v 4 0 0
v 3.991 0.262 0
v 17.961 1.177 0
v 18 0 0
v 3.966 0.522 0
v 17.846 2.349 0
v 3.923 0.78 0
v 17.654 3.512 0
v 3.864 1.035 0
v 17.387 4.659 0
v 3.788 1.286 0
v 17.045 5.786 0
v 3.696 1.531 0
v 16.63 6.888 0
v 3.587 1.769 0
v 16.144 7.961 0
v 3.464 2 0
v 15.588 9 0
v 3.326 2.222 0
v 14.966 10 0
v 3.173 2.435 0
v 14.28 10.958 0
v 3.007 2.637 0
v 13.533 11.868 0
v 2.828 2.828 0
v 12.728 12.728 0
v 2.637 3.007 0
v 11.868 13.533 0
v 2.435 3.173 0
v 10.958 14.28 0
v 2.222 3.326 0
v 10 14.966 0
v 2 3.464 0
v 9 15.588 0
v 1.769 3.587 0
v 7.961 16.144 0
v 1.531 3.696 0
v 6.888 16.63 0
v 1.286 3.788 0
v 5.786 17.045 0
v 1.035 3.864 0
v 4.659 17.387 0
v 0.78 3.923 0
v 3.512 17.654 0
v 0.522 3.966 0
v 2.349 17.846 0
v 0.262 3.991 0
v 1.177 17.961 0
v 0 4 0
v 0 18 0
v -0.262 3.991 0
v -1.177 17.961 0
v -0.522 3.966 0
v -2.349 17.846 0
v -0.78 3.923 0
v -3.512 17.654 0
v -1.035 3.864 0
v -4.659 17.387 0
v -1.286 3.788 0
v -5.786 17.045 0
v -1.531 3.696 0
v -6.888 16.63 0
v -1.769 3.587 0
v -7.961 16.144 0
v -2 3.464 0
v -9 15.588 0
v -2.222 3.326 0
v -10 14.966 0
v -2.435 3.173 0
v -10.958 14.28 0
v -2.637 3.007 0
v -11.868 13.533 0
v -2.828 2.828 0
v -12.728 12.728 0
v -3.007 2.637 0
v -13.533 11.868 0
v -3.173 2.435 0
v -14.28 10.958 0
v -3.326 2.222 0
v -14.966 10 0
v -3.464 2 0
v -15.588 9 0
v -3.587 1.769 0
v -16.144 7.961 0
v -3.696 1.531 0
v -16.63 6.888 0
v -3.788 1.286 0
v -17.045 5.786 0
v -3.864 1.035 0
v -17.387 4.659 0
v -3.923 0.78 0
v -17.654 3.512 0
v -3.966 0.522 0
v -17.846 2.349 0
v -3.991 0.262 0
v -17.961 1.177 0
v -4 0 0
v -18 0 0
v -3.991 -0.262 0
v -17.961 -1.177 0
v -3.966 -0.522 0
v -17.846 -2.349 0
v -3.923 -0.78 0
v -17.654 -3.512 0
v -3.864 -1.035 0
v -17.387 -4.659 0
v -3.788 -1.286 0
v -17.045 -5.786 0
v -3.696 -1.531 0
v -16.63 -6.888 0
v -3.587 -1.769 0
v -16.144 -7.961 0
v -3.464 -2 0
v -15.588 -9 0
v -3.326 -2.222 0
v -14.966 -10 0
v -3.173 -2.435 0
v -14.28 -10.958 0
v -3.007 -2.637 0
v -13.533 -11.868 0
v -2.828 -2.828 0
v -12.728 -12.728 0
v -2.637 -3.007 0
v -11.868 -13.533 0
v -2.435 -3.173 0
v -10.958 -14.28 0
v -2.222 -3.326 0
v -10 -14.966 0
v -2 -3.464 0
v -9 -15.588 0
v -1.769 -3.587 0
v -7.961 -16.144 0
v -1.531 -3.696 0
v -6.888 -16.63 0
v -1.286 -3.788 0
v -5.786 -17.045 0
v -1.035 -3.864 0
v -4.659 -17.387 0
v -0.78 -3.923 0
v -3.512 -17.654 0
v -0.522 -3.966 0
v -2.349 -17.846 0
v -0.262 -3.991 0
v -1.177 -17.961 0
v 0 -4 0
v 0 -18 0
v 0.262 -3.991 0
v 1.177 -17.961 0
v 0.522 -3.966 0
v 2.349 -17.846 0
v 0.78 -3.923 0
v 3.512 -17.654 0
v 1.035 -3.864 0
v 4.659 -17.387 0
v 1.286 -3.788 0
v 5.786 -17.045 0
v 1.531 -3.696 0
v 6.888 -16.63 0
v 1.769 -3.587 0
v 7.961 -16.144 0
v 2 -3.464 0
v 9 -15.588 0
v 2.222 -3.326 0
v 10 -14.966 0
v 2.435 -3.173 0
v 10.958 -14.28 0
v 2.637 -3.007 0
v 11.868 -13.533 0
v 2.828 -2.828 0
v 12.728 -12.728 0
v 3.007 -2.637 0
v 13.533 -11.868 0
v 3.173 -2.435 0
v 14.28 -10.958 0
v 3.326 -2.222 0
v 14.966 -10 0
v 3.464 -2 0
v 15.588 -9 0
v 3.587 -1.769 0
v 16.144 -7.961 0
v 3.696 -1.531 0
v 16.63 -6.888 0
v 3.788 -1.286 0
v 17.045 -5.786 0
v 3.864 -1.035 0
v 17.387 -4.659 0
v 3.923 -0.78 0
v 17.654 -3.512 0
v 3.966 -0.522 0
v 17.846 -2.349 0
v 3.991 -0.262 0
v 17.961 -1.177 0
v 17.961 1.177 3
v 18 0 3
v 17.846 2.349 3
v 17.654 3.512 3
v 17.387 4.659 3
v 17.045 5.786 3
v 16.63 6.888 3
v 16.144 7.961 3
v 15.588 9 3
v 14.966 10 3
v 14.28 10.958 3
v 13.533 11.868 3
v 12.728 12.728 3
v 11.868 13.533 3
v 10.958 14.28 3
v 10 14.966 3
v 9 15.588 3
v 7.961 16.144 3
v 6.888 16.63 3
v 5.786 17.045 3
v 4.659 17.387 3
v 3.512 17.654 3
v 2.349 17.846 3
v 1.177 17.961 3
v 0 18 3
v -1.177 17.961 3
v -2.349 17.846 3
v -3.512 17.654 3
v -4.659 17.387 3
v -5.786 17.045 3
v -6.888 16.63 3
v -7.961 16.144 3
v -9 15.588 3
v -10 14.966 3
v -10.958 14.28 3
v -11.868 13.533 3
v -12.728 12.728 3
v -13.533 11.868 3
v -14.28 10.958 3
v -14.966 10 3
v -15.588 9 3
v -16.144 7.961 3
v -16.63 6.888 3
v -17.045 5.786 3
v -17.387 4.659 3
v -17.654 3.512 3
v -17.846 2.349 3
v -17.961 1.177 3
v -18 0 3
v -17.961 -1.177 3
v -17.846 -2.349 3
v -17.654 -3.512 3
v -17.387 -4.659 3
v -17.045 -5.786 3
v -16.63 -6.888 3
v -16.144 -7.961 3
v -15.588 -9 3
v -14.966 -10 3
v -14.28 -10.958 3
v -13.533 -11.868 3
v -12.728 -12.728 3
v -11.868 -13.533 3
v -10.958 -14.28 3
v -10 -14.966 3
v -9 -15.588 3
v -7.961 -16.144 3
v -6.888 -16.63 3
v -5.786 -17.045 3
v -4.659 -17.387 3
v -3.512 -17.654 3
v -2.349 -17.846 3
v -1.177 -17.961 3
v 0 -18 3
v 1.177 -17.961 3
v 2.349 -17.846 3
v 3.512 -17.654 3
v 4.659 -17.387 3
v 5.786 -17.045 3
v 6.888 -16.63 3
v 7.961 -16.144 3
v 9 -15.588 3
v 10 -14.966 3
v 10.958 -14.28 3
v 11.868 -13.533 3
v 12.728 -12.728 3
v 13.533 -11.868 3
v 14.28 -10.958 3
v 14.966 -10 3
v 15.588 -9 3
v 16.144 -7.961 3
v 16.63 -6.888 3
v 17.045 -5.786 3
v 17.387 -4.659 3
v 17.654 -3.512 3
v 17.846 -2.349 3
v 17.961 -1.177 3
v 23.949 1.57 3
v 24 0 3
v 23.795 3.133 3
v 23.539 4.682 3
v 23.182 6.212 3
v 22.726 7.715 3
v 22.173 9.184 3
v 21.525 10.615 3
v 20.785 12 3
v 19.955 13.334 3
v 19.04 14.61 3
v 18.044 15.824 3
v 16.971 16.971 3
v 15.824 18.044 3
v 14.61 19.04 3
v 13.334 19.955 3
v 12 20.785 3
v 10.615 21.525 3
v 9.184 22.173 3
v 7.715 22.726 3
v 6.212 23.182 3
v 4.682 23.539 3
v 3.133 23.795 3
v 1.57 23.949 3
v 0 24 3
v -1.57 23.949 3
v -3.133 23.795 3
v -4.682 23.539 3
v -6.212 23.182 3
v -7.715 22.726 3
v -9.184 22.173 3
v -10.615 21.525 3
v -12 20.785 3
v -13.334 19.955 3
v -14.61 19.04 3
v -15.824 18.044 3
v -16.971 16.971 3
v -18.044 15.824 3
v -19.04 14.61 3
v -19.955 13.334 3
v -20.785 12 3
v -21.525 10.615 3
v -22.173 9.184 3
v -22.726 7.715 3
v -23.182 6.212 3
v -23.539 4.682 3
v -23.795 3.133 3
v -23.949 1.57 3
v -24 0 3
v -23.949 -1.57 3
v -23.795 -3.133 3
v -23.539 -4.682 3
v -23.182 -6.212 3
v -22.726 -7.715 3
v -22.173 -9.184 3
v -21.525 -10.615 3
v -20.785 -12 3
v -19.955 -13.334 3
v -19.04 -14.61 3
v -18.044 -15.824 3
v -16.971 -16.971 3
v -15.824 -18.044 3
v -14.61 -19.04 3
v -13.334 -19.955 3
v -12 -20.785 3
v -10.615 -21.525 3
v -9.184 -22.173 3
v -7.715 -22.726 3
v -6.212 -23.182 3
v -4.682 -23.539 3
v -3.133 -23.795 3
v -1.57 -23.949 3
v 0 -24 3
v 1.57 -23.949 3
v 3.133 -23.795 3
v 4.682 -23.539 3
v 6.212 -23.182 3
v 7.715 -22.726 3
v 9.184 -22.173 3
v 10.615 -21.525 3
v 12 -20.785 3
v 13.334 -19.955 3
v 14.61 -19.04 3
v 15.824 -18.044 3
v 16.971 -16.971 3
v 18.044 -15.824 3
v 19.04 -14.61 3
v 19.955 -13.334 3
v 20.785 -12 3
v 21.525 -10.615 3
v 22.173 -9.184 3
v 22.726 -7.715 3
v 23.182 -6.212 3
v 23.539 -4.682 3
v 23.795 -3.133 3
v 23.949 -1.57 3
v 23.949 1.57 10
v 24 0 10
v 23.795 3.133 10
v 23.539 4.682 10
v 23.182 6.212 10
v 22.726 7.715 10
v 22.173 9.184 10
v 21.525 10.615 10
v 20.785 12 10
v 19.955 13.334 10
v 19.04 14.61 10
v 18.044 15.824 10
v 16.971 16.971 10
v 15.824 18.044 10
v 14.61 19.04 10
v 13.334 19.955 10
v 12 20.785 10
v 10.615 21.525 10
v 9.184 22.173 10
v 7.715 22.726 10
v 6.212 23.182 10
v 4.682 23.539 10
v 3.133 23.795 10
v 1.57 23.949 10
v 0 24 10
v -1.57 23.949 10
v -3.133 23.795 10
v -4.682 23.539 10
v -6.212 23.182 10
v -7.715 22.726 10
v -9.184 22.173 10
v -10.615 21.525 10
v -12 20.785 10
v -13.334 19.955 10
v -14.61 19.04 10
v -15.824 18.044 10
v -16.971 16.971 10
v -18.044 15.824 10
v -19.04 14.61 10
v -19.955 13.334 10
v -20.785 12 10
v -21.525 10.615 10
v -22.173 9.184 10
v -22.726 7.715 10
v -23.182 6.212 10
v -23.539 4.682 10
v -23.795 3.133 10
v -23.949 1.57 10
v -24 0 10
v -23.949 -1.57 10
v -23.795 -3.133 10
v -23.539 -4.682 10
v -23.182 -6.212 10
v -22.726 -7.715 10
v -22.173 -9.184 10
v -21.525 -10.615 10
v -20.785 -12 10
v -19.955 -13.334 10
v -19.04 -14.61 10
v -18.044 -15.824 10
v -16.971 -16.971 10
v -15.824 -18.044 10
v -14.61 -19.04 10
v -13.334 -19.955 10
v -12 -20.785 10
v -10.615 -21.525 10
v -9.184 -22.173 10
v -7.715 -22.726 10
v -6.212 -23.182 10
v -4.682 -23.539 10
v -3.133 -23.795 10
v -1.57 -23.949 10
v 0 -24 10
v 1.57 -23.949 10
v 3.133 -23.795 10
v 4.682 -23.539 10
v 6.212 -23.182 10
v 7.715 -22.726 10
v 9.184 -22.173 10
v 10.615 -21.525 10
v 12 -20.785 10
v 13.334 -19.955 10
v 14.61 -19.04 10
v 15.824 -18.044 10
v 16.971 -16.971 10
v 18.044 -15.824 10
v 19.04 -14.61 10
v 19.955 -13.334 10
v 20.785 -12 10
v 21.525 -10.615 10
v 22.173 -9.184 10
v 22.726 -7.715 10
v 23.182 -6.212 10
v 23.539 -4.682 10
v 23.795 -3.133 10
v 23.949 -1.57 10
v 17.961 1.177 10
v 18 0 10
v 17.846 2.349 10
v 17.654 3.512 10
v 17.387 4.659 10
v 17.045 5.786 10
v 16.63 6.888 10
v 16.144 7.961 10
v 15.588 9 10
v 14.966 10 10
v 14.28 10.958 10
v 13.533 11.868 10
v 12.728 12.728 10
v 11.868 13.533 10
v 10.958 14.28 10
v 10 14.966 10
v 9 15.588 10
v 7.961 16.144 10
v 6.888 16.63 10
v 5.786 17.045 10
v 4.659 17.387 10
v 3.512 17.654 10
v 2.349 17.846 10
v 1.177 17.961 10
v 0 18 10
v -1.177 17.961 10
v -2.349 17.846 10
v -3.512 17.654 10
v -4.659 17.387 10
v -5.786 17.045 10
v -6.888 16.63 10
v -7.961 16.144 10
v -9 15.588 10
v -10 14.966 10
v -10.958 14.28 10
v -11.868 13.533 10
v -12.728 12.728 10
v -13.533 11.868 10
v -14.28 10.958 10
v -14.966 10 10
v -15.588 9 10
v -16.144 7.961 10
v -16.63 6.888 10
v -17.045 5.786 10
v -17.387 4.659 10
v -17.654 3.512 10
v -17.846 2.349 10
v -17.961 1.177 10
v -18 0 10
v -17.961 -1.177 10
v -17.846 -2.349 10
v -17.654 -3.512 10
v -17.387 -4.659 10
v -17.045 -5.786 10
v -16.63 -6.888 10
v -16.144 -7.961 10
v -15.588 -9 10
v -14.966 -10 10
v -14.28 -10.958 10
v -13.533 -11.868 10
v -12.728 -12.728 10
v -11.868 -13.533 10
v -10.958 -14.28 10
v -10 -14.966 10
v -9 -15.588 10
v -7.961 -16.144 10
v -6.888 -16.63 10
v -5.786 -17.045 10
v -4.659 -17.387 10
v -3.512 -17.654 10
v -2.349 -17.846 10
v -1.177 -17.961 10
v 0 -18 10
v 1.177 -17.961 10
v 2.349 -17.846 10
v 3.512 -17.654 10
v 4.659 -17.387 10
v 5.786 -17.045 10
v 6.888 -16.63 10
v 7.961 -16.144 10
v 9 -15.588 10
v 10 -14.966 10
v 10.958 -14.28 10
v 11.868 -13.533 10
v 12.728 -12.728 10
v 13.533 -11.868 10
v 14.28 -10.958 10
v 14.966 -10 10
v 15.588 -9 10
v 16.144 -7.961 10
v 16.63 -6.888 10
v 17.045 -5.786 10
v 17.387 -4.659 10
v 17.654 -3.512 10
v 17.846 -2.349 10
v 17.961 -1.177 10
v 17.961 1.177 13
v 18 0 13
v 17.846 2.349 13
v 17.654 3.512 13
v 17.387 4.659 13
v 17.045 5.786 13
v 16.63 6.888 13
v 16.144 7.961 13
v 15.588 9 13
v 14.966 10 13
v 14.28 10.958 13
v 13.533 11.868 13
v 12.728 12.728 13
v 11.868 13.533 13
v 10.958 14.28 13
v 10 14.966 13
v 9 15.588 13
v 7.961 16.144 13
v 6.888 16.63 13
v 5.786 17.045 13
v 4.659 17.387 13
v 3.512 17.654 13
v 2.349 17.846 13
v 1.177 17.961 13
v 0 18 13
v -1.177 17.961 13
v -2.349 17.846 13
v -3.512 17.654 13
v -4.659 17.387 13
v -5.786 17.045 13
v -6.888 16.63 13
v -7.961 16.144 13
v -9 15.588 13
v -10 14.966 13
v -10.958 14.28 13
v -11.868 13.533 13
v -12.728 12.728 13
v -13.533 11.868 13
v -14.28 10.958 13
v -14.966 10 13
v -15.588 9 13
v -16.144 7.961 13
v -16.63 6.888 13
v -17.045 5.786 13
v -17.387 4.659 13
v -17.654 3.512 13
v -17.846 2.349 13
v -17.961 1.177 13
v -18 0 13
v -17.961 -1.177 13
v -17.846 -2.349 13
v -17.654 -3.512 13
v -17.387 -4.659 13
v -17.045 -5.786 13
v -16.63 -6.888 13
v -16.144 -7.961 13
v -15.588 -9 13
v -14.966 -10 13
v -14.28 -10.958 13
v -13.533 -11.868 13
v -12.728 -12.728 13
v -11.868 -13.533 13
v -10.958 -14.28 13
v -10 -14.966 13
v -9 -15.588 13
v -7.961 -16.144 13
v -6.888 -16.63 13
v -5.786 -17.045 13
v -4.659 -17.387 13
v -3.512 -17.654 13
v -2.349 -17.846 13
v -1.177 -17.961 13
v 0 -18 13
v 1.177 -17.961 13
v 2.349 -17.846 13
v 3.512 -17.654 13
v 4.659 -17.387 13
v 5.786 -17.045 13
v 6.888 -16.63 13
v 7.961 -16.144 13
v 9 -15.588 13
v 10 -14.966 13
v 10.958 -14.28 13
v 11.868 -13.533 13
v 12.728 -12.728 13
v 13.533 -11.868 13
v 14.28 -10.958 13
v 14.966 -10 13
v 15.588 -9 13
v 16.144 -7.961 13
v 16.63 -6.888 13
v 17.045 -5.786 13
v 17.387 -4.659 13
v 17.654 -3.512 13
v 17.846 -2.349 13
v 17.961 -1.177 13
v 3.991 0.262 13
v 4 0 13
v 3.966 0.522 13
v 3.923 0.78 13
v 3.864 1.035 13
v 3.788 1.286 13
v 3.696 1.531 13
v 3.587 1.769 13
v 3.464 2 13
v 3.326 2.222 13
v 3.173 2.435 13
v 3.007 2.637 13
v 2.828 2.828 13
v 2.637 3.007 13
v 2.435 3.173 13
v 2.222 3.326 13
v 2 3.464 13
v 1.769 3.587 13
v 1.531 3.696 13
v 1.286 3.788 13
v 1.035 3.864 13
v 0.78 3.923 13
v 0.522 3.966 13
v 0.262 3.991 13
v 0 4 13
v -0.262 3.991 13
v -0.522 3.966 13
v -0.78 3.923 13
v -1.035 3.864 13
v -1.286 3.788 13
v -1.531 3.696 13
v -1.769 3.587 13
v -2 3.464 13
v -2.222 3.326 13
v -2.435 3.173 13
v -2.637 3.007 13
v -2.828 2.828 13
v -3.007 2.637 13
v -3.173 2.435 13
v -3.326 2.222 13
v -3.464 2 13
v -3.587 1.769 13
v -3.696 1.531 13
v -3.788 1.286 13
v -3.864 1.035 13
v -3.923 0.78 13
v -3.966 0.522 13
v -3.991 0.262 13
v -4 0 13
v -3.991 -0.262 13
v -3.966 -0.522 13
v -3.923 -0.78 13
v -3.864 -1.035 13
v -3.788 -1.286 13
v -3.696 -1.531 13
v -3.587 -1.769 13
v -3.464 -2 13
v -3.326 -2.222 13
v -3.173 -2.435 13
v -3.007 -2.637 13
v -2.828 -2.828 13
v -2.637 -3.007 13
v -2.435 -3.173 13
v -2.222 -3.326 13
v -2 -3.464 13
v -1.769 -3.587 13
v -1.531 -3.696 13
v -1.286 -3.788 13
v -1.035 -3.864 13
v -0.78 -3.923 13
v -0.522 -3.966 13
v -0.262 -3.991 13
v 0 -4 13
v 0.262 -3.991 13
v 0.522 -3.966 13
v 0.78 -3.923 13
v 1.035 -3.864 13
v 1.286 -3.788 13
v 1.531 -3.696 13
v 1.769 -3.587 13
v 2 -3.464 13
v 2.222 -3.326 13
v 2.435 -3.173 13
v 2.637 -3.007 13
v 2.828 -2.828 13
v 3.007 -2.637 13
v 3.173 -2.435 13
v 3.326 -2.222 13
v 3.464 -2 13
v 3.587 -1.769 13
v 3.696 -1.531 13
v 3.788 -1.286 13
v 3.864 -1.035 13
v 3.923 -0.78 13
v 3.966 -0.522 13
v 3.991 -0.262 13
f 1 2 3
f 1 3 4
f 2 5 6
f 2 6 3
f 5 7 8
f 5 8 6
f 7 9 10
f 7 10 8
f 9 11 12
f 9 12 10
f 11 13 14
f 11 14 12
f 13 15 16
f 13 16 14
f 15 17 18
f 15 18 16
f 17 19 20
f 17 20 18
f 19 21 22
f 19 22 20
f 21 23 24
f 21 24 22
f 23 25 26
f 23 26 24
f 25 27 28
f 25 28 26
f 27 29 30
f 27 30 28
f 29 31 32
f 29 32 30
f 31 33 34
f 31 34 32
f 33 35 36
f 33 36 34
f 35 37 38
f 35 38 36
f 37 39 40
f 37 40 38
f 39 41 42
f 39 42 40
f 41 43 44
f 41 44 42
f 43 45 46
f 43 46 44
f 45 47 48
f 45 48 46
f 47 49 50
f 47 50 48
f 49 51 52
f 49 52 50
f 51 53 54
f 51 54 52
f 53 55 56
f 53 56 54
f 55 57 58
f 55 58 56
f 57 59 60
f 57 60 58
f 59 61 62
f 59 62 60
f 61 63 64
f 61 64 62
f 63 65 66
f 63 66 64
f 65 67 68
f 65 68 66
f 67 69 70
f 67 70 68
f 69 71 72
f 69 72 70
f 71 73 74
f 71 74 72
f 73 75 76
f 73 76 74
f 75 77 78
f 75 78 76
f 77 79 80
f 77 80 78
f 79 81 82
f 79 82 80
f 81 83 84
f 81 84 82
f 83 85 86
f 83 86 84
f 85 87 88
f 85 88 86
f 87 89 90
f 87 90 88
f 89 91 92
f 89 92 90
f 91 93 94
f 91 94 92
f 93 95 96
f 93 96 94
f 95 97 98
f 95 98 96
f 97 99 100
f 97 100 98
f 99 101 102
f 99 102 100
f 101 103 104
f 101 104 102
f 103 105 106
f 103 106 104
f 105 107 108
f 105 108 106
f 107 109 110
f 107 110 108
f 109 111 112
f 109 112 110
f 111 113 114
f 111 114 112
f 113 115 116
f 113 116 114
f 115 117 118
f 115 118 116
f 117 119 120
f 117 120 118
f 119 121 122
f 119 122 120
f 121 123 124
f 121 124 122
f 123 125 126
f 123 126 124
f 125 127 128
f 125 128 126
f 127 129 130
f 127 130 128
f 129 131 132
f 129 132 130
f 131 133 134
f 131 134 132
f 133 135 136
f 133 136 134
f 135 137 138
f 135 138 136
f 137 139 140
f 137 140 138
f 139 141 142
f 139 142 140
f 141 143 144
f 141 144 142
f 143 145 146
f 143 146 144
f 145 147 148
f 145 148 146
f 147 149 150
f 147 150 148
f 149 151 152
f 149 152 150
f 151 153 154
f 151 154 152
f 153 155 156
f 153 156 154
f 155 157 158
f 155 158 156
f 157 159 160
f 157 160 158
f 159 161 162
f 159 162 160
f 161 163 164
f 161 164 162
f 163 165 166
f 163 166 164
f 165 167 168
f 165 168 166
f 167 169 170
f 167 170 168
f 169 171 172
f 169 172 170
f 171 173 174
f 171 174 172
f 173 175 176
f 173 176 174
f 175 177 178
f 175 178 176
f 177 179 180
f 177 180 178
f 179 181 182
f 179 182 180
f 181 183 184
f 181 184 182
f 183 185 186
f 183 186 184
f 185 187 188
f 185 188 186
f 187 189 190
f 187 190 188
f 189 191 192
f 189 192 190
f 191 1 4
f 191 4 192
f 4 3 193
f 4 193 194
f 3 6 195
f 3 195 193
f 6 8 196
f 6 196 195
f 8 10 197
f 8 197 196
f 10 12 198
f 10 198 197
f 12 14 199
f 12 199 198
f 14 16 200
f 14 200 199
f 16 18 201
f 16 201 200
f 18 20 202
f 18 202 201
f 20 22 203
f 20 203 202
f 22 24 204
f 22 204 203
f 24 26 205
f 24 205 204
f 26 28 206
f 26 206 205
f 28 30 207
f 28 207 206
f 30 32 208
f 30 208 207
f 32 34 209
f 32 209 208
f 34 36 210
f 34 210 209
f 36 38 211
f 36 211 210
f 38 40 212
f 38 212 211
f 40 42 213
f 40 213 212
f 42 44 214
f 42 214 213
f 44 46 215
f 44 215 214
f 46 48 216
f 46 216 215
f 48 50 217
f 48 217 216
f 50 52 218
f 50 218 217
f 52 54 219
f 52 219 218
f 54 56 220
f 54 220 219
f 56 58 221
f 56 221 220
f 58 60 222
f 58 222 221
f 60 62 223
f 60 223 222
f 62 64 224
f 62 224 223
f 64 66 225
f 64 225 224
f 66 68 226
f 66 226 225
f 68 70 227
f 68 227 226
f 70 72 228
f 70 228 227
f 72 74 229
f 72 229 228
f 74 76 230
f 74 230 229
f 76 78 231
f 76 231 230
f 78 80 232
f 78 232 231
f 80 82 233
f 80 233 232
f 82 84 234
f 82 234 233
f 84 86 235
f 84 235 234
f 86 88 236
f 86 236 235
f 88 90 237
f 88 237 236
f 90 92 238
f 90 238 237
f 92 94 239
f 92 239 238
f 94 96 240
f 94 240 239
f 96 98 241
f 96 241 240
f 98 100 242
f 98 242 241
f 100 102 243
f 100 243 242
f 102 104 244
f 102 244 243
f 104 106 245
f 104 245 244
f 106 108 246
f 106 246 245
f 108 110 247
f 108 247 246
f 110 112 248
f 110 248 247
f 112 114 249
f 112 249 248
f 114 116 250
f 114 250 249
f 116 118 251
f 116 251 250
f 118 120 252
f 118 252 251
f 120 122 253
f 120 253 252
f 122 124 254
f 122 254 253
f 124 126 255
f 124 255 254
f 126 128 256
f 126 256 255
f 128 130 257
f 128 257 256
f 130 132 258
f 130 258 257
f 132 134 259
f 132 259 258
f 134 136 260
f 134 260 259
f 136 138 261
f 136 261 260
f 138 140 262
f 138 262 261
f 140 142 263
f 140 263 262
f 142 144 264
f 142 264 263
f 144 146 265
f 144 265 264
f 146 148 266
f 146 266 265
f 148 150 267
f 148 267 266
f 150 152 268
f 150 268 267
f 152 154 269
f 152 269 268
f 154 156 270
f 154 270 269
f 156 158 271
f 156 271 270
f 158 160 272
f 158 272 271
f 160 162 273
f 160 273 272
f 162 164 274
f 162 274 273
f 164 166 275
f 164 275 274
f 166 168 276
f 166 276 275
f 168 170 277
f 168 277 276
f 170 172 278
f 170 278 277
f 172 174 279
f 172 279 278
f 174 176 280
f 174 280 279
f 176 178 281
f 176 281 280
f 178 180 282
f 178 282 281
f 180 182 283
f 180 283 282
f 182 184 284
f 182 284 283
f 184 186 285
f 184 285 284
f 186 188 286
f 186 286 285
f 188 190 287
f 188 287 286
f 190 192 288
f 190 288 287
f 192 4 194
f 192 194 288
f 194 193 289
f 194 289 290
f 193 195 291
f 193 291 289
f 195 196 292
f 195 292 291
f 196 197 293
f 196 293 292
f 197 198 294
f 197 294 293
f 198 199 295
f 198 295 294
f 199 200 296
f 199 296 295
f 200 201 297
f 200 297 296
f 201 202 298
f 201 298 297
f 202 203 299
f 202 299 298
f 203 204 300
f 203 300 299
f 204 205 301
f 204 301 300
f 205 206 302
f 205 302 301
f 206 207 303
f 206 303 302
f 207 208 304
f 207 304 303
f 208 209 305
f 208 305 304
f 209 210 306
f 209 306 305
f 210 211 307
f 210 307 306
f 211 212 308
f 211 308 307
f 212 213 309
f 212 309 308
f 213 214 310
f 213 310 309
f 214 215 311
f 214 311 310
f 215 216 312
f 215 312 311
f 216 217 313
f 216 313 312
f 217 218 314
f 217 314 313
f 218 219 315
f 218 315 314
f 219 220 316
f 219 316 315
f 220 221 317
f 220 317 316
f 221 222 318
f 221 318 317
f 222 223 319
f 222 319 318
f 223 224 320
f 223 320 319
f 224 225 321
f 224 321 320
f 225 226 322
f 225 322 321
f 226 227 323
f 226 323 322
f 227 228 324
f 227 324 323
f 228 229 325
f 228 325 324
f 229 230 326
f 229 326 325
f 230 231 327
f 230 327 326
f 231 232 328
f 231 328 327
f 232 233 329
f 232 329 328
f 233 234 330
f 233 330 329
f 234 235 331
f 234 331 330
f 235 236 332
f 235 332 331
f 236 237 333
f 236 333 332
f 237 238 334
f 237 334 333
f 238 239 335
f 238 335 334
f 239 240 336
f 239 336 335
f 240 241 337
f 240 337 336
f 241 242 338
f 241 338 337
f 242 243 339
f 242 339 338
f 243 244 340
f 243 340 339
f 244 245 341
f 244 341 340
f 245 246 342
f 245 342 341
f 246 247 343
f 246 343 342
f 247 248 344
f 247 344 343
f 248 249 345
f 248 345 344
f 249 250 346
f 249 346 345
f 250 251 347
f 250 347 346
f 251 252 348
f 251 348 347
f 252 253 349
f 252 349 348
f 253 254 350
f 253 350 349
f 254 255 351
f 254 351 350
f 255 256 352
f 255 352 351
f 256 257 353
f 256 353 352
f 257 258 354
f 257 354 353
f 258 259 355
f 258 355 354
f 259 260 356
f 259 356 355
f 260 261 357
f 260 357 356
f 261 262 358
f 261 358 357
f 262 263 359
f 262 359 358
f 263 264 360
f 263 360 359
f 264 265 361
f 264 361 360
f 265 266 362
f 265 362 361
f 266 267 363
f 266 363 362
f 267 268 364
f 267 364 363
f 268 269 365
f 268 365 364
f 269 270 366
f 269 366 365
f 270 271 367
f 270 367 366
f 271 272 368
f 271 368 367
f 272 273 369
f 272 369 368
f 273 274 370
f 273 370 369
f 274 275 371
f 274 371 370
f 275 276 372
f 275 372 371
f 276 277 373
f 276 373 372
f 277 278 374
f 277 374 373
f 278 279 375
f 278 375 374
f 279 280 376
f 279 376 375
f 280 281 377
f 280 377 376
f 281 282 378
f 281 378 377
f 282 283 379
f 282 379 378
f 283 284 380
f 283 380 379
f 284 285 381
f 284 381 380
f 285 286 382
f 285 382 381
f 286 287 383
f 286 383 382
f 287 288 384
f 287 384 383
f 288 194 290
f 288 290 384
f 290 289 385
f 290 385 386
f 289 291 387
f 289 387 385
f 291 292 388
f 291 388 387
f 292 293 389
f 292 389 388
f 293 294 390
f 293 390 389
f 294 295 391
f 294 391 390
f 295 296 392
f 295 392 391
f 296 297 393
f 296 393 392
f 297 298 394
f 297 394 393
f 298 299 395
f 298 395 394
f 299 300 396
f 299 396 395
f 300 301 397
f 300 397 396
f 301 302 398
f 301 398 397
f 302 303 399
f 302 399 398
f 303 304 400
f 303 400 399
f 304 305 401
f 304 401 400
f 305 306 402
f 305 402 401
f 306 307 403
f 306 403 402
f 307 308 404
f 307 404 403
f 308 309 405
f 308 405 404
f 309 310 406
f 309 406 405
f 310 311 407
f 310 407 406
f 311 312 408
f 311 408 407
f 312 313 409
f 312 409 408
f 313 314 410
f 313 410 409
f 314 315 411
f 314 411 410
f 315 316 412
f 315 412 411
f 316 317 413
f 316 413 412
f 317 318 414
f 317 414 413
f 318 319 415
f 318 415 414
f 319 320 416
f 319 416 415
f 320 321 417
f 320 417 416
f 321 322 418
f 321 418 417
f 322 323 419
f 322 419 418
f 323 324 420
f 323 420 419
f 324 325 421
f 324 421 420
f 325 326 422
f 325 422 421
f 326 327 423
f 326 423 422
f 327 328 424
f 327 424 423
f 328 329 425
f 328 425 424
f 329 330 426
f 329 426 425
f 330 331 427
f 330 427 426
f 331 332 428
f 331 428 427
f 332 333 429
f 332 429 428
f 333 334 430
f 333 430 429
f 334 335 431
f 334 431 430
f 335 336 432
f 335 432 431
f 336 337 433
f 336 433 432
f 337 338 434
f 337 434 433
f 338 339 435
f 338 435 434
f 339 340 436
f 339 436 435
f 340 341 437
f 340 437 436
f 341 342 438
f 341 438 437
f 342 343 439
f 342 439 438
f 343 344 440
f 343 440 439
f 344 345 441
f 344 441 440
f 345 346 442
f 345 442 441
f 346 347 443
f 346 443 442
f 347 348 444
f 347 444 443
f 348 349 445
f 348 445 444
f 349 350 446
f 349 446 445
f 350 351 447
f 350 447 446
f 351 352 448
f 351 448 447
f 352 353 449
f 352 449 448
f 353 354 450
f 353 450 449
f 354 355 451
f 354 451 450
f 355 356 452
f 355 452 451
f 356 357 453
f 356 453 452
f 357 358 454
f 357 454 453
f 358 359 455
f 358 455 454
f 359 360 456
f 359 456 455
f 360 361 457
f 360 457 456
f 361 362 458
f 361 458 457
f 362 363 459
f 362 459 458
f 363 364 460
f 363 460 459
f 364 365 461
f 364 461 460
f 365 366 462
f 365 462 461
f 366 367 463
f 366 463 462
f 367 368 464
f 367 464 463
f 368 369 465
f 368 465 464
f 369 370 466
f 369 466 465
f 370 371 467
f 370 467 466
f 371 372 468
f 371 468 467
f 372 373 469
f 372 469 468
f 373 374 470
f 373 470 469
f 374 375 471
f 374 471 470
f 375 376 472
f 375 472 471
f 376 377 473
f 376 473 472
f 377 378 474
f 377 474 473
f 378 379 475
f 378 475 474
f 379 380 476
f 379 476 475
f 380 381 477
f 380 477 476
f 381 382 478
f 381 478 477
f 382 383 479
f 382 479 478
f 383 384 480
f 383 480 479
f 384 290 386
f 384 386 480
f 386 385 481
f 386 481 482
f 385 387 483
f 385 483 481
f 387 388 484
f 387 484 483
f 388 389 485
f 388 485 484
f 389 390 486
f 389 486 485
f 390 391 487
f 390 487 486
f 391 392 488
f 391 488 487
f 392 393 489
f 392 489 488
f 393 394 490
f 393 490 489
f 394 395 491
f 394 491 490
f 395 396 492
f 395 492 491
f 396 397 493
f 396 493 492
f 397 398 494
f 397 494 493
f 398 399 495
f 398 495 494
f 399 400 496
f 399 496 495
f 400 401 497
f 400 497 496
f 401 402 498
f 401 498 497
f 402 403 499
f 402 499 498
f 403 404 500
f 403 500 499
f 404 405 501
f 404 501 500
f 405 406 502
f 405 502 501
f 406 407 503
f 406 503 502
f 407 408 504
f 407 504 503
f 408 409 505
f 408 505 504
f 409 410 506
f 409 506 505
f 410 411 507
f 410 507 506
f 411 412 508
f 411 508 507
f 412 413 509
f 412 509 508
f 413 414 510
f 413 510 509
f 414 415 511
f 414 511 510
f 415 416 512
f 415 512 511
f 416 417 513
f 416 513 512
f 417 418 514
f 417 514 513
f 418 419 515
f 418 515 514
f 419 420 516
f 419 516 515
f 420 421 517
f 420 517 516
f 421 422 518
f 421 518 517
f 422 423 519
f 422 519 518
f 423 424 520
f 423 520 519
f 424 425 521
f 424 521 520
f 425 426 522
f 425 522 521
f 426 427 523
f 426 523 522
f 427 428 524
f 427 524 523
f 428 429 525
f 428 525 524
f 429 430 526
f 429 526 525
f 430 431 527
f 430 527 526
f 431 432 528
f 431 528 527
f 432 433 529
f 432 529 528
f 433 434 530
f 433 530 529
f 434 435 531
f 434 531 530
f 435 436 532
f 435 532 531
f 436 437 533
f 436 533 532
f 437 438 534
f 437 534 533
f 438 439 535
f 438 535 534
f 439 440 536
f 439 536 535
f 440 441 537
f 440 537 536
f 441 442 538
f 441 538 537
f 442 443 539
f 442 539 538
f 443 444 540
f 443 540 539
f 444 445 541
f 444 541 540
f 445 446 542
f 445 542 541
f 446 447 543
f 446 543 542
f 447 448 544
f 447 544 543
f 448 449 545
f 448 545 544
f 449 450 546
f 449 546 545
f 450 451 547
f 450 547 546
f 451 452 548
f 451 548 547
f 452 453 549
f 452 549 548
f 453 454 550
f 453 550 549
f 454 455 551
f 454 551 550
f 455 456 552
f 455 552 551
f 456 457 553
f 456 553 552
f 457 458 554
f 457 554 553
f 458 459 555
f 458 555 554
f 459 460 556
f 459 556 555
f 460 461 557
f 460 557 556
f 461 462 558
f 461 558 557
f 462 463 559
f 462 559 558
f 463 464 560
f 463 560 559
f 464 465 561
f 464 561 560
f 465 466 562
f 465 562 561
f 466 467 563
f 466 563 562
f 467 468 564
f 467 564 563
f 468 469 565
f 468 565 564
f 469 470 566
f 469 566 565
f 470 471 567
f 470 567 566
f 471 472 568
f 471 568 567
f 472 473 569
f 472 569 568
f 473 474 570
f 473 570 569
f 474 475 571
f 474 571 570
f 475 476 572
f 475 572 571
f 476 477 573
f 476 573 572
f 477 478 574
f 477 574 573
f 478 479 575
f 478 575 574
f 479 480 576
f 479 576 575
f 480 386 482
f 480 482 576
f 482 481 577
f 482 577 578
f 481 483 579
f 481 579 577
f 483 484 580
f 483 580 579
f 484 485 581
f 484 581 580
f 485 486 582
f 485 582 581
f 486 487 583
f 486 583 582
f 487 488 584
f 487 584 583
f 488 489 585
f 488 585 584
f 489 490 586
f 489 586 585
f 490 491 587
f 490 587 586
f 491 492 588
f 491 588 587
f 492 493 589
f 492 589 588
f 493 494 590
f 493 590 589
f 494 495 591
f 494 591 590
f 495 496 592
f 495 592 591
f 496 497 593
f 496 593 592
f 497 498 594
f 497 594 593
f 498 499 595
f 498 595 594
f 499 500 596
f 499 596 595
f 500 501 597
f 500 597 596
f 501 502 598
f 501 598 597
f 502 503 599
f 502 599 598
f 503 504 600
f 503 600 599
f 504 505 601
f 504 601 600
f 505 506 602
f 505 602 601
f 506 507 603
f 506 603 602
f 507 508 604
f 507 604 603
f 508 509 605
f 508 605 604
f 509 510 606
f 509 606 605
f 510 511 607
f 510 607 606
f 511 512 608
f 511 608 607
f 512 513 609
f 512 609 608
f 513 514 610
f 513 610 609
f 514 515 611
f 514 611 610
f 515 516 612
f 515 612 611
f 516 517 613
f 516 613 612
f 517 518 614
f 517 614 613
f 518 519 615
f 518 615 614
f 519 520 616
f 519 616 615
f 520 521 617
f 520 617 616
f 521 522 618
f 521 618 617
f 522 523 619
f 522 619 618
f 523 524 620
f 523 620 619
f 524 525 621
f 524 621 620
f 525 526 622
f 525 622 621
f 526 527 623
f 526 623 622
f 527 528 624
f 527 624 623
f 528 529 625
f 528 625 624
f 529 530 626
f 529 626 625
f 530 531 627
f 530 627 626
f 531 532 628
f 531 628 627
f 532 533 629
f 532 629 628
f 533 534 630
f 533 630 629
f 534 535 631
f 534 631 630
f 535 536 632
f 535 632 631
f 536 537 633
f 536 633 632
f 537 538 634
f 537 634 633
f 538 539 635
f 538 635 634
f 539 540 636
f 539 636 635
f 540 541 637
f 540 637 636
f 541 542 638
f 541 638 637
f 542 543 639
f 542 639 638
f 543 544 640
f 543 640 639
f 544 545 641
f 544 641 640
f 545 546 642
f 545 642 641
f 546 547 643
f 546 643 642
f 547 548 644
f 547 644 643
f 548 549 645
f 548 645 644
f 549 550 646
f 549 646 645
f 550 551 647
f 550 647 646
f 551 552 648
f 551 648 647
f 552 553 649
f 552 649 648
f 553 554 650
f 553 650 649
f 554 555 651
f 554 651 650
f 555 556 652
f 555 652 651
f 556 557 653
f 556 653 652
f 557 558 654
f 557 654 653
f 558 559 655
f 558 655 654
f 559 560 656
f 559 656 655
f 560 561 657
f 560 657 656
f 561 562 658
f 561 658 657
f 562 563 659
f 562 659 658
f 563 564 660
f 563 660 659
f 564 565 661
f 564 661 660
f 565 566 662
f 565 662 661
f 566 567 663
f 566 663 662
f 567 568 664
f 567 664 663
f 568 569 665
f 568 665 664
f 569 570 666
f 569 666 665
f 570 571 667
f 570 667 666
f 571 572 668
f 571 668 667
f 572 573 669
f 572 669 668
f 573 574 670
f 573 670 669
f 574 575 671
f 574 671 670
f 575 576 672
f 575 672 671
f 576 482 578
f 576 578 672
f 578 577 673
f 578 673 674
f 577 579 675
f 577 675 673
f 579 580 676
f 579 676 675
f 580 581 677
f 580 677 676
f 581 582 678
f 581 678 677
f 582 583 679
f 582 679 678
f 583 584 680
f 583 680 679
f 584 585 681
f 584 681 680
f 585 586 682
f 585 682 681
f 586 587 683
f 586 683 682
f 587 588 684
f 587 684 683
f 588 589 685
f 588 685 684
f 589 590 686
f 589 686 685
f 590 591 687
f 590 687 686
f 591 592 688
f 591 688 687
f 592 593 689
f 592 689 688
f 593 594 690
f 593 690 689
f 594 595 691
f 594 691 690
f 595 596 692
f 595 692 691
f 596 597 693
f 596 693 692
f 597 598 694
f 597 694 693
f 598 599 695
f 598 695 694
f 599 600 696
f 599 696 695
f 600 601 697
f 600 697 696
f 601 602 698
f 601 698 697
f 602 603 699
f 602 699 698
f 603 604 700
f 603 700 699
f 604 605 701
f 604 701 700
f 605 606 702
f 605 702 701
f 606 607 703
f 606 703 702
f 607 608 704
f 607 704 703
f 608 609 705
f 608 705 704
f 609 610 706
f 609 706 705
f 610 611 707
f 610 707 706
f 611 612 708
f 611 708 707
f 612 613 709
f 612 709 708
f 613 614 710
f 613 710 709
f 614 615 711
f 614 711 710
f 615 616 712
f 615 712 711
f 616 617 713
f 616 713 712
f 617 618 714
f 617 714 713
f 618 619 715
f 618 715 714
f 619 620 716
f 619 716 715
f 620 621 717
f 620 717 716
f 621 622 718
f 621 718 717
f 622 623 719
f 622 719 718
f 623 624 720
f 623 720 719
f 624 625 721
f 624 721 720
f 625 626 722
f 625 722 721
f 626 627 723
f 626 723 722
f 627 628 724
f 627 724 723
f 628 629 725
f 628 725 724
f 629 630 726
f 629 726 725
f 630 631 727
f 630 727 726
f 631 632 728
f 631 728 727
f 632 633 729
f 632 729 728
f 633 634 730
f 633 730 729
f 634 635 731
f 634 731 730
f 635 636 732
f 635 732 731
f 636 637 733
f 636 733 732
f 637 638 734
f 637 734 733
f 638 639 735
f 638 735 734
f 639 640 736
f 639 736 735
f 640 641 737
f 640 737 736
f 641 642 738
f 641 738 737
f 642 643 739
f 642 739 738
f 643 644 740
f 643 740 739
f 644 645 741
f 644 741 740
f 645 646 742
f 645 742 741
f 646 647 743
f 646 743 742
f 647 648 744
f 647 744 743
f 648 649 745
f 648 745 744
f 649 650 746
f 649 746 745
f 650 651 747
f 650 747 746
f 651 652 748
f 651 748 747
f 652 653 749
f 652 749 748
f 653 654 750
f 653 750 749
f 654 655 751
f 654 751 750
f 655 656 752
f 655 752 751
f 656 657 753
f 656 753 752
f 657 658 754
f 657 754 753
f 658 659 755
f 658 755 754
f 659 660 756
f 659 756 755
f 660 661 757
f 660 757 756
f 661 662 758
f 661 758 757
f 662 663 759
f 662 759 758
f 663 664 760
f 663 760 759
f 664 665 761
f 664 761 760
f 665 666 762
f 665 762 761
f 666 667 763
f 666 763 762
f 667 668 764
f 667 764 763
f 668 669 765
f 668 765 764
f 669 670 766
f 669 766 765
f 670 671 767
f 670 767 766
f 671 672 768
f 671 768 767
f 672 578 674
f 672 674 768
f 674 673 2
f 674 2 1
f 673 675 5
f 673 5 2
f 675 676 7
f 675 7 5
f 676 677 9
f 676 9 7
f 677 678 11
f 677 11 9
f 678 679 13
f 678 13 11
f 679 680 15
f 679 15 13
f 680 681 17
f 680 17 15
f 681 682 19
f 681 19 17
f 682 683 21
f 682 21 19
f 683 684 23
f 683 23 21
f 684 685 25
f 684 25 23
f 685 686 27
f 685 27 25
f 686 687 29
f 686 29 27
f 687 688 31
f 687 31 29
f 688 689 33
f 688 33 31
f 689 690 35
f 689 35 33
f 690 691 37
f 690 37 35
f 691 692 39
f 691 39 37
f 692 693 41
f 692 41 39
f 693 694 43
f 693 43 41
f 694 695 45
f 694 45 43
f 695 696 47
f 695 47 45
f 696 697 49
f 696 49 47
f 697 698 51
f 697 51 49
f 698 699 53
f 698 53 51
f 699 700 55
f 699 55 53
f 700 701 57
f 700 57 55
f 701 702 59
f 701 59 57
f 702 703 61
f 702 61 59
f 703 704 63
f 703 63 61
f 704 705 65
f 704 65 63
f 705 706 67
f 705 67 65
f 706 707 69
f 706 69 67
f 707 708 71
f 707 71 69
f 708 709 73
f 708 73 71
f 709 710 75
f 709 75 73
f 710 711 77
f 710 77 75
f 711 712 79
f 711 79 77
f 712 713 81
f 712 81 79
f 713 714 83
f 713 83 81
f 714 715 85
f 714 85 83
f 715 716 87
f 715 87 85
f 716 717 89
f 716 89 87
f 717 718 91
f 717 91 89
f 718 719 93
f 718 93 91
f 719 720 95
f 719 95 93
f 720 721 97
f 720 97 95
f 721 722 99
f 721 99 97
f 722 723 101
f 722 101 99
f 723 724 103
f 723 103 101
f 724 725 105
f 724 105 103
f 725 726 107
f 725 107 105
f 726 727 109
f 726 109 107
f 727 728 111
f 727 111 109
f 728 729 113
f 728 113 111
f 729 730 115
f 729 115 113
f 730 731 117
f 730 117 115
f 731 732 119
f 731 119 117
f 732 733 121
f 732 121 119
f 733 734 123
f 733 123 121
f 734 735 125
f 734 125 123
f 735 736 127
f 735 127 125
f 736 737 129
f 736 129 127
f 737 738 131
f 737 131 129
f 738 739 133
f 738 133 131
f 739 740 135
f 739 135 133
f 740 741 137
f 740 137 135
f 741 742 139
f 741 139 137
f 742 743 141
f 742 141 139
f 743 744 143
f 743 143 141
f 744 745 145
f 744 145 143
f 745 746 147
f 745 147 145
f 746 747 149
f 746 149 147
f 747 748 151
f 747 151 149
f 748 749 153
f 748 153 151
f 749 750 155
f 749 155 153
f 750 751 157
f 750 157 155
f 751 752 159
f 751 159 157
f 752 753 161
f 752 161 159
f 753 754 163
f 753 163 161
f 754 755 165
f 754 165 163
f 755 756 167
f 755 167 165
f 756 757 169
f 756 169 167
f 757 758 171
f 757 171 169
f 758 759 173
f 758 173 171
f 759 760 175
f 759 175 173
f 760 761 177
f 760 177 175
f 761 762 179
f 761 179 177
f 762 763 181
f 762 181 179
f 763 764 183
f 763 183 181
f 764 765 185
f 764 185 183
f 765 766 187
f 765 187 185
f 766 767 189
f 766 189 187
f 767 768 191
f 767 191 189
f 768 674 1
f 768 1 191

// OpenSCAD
// Original MechIntel educational model. CC0-1.0. Units: mm.
// Not a standardized or load-rated component.
$fn=96;
// Section points: [radius, height], mm. Edit to change the profile.
section=[[4, 0], [18, 0], [18, 3], [24, 3], [24, 10], [18, 10], [18, 13], [4, 13]];
rotate_extrude($fn=96) polygon(points=section);
